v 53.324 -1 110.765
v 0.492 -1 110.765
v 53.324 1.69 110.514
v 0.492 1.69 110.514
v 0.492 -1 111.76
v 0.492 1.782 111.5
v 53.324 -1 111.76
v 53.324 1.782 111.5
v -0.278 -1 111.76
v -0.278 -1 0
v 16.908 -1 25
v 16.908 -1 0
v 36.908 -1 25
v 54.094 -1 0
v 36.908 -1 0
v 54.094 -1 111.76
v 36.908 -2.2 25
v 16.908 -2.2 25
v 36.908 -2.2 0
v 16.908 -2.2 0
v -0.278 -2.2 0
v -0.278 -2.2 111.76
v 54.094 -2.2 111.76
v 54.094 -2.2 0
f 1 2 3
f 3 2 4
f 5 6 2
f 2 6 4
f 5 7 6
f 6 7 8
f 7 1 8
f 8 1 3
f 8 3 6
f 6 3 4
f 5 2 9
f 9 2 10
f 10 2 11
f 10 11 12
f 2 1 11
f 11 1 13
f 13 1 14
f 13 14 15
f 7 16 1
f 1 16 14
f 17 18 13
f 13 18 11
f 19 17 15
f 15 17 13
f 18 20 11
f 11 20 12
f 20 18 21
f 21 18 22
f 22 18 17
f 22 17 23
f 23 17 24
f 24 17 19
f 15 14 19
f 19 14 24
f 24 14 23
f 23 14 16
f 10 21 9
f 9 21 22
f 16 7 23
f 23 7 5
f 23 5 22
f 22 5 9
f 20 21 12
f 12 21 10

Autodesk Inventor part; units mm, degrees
ref_plane "YZ Plane" through (0, 0, 0) normal (1, 0, 0) x (0, 1, 0)
ref_plane "XZ Plane" through (0, 0, 0) normal (0, 1, 0) x (-1, 0, 0)
ref_plane "XY Plane" through (0, 0, 0) normal (0, 0, 1) x (1, 0, 0)
sketch "Sketch1" plane through (0, 0, 0) normal (0, 0, 1) x (1, 0, 0)
  line L0 (0.222, 0) -> (0.222, -1)
  line L1 (0.222, 0) -> (0.222, -5.0532)
  line L2 (0.222, -1) -> (-0.778, -1)
  line L3 (-0.778, -1) -> (-0.778, -2.2)
  line L4 (53.594, 0) -> (55.372, 0)
  line L5 (53.594, 0) -> (53.594, -1)
  line L6 (53.594, 0) -> (53.594, -17.7031)
  line L7 (53.594, -1) -> (54.594, -1)
  line L8 (54.594, -1) -> (54.594, -2.2)
  line L9 (-1.778, 0) -> (-1.778, -17.5378)
  line L10 (-0.778, -2.2) -> (54.594, -2.2)
  line L11 (0.222, 0) -> (53.372, 0)
  line L12 (0.222, -1) -> (53.594, -1)
  line L13 (-0.778, -2.2) -> (54.594, -2.2)
  line L14 (54.594, -2.2) -> (54.594, -1)
  line L15 (54.594, -1) -> (-0.778, -1)
  line L16 (-0.778, -1) -> (-0.778, -2.2)
  line L17 (-0.278, -2.2) -> (-0.278, -1)
  line L18 (54.094, -2.2) -> (54.094, -1)
  point P0 (0, 0)
  point P1 (26.797, 5.3109)
  dimension "d0" = 1
  dimension "d1" = 1
  dimension "d2" = 1.2
  dimension "d3" = 1
  dimension "d4" = 1
  dimension "d5" = 1.2
extrude "Extrusion1" add sketch "Sketch1" along normal blind 111.76 contours L12 L6 L10 L1 | L1 L10 L17 L2 | L7 L18 L10 L6
sketch "Sketch2" plane through (-0.778, -1, 0) normal (0, 1, 0) x (1, 0, 0)
  line L0 (54.872, 0) -> (0.5, 0) projected
  line L1 (0, 0) -> (55.372, 0)
  line L2 (27.686, 0) -> (27.686, -25)
  line L3 (27.686, -25) -> (17.686, -25)
  line L4 (17.686, -25) -> (17.686, 0)
  line L5 (27.686, -25) -> (37.686, -25)
  line L6 (37.686, -25) -> (37.686, 0)
  line L7 (17.686, 0) -> (37.686, 0)
  point P0 (0.778, 0)
  dimension "d8" = 25
  dimension "d9" = 10
  dimension "d10" = 10
extrude "Extrusion2" cut sketch "Sketch2" against normal blind 111.76
sketch "Sketch3" plane through (-0.778, -1, 111.76) normal (0, 1, 0) x (1, 0, 0)
  line L0 (0, 111.76) -> (0, 0) projected
  line L1 (0, 0) -> (1.27, 0)
  line L2 (54.872, 0) -> (0.5, 0) projected
  line L3 (55.372, 0) -> (54.102, 0)
  line L4 (1.27, 0) -> (54.102, 0)
  line L5 (1.27, 0) -> (1.27, 0.9906)
  line L6 (1.27, 0.9906) -> (54.102, 0.9906)
  line L7 (54.102, 0.9906) -> (54.102, 0)
  point P0 (0.778, 111.76)
  dimension "d13" = 1.27
  dimension "d14" = 1.27
  dimension "d15" = 0.9906
ref_plane "Work Plane3" through (54.594, -1, 111.76) normal (0, -0.9957, 0.0929) x (-1, 0, 0)
ref_plane "Work Plane2" through (-0.778, -2.2, 111.76) normal (0, -0.0929, -0.9957) x (1, 0, 0)
sketch "Sketch5" plane through (54.594, -1, 111.76) normal (0, -0.9957, 0.0929) x (-1, 0, 0)
  line L0 (0, 111.76) -> (0, 0)
  line L1 (0, 0) -> (1.27, 0)
  line L2 (55.372, 0) -> (0, 0)
  line L3 (55.372, 0) -> (54.102, 0)
  line L4 (1.27, 0) -> (54.102, 0)
  line L5 (1.27, 0) -> (1.27, 0.9906)
  line L6 (1.27, 0.9906) -> (54.102, 0.9906)
  line L7 (54.102, 0.9906) -> (54.102, 0)
  point P0 (54.594, 111.1839)
  point P1 (0.778, 111.76)
  dimension "d26" = 1.27
  dimension "d27" = 1.27
  dimension "d28" = 0.9906
extrude "Extrusion5" add sketch "Sketch5" against normal blind 2.794
properties part number "betonbottom"
